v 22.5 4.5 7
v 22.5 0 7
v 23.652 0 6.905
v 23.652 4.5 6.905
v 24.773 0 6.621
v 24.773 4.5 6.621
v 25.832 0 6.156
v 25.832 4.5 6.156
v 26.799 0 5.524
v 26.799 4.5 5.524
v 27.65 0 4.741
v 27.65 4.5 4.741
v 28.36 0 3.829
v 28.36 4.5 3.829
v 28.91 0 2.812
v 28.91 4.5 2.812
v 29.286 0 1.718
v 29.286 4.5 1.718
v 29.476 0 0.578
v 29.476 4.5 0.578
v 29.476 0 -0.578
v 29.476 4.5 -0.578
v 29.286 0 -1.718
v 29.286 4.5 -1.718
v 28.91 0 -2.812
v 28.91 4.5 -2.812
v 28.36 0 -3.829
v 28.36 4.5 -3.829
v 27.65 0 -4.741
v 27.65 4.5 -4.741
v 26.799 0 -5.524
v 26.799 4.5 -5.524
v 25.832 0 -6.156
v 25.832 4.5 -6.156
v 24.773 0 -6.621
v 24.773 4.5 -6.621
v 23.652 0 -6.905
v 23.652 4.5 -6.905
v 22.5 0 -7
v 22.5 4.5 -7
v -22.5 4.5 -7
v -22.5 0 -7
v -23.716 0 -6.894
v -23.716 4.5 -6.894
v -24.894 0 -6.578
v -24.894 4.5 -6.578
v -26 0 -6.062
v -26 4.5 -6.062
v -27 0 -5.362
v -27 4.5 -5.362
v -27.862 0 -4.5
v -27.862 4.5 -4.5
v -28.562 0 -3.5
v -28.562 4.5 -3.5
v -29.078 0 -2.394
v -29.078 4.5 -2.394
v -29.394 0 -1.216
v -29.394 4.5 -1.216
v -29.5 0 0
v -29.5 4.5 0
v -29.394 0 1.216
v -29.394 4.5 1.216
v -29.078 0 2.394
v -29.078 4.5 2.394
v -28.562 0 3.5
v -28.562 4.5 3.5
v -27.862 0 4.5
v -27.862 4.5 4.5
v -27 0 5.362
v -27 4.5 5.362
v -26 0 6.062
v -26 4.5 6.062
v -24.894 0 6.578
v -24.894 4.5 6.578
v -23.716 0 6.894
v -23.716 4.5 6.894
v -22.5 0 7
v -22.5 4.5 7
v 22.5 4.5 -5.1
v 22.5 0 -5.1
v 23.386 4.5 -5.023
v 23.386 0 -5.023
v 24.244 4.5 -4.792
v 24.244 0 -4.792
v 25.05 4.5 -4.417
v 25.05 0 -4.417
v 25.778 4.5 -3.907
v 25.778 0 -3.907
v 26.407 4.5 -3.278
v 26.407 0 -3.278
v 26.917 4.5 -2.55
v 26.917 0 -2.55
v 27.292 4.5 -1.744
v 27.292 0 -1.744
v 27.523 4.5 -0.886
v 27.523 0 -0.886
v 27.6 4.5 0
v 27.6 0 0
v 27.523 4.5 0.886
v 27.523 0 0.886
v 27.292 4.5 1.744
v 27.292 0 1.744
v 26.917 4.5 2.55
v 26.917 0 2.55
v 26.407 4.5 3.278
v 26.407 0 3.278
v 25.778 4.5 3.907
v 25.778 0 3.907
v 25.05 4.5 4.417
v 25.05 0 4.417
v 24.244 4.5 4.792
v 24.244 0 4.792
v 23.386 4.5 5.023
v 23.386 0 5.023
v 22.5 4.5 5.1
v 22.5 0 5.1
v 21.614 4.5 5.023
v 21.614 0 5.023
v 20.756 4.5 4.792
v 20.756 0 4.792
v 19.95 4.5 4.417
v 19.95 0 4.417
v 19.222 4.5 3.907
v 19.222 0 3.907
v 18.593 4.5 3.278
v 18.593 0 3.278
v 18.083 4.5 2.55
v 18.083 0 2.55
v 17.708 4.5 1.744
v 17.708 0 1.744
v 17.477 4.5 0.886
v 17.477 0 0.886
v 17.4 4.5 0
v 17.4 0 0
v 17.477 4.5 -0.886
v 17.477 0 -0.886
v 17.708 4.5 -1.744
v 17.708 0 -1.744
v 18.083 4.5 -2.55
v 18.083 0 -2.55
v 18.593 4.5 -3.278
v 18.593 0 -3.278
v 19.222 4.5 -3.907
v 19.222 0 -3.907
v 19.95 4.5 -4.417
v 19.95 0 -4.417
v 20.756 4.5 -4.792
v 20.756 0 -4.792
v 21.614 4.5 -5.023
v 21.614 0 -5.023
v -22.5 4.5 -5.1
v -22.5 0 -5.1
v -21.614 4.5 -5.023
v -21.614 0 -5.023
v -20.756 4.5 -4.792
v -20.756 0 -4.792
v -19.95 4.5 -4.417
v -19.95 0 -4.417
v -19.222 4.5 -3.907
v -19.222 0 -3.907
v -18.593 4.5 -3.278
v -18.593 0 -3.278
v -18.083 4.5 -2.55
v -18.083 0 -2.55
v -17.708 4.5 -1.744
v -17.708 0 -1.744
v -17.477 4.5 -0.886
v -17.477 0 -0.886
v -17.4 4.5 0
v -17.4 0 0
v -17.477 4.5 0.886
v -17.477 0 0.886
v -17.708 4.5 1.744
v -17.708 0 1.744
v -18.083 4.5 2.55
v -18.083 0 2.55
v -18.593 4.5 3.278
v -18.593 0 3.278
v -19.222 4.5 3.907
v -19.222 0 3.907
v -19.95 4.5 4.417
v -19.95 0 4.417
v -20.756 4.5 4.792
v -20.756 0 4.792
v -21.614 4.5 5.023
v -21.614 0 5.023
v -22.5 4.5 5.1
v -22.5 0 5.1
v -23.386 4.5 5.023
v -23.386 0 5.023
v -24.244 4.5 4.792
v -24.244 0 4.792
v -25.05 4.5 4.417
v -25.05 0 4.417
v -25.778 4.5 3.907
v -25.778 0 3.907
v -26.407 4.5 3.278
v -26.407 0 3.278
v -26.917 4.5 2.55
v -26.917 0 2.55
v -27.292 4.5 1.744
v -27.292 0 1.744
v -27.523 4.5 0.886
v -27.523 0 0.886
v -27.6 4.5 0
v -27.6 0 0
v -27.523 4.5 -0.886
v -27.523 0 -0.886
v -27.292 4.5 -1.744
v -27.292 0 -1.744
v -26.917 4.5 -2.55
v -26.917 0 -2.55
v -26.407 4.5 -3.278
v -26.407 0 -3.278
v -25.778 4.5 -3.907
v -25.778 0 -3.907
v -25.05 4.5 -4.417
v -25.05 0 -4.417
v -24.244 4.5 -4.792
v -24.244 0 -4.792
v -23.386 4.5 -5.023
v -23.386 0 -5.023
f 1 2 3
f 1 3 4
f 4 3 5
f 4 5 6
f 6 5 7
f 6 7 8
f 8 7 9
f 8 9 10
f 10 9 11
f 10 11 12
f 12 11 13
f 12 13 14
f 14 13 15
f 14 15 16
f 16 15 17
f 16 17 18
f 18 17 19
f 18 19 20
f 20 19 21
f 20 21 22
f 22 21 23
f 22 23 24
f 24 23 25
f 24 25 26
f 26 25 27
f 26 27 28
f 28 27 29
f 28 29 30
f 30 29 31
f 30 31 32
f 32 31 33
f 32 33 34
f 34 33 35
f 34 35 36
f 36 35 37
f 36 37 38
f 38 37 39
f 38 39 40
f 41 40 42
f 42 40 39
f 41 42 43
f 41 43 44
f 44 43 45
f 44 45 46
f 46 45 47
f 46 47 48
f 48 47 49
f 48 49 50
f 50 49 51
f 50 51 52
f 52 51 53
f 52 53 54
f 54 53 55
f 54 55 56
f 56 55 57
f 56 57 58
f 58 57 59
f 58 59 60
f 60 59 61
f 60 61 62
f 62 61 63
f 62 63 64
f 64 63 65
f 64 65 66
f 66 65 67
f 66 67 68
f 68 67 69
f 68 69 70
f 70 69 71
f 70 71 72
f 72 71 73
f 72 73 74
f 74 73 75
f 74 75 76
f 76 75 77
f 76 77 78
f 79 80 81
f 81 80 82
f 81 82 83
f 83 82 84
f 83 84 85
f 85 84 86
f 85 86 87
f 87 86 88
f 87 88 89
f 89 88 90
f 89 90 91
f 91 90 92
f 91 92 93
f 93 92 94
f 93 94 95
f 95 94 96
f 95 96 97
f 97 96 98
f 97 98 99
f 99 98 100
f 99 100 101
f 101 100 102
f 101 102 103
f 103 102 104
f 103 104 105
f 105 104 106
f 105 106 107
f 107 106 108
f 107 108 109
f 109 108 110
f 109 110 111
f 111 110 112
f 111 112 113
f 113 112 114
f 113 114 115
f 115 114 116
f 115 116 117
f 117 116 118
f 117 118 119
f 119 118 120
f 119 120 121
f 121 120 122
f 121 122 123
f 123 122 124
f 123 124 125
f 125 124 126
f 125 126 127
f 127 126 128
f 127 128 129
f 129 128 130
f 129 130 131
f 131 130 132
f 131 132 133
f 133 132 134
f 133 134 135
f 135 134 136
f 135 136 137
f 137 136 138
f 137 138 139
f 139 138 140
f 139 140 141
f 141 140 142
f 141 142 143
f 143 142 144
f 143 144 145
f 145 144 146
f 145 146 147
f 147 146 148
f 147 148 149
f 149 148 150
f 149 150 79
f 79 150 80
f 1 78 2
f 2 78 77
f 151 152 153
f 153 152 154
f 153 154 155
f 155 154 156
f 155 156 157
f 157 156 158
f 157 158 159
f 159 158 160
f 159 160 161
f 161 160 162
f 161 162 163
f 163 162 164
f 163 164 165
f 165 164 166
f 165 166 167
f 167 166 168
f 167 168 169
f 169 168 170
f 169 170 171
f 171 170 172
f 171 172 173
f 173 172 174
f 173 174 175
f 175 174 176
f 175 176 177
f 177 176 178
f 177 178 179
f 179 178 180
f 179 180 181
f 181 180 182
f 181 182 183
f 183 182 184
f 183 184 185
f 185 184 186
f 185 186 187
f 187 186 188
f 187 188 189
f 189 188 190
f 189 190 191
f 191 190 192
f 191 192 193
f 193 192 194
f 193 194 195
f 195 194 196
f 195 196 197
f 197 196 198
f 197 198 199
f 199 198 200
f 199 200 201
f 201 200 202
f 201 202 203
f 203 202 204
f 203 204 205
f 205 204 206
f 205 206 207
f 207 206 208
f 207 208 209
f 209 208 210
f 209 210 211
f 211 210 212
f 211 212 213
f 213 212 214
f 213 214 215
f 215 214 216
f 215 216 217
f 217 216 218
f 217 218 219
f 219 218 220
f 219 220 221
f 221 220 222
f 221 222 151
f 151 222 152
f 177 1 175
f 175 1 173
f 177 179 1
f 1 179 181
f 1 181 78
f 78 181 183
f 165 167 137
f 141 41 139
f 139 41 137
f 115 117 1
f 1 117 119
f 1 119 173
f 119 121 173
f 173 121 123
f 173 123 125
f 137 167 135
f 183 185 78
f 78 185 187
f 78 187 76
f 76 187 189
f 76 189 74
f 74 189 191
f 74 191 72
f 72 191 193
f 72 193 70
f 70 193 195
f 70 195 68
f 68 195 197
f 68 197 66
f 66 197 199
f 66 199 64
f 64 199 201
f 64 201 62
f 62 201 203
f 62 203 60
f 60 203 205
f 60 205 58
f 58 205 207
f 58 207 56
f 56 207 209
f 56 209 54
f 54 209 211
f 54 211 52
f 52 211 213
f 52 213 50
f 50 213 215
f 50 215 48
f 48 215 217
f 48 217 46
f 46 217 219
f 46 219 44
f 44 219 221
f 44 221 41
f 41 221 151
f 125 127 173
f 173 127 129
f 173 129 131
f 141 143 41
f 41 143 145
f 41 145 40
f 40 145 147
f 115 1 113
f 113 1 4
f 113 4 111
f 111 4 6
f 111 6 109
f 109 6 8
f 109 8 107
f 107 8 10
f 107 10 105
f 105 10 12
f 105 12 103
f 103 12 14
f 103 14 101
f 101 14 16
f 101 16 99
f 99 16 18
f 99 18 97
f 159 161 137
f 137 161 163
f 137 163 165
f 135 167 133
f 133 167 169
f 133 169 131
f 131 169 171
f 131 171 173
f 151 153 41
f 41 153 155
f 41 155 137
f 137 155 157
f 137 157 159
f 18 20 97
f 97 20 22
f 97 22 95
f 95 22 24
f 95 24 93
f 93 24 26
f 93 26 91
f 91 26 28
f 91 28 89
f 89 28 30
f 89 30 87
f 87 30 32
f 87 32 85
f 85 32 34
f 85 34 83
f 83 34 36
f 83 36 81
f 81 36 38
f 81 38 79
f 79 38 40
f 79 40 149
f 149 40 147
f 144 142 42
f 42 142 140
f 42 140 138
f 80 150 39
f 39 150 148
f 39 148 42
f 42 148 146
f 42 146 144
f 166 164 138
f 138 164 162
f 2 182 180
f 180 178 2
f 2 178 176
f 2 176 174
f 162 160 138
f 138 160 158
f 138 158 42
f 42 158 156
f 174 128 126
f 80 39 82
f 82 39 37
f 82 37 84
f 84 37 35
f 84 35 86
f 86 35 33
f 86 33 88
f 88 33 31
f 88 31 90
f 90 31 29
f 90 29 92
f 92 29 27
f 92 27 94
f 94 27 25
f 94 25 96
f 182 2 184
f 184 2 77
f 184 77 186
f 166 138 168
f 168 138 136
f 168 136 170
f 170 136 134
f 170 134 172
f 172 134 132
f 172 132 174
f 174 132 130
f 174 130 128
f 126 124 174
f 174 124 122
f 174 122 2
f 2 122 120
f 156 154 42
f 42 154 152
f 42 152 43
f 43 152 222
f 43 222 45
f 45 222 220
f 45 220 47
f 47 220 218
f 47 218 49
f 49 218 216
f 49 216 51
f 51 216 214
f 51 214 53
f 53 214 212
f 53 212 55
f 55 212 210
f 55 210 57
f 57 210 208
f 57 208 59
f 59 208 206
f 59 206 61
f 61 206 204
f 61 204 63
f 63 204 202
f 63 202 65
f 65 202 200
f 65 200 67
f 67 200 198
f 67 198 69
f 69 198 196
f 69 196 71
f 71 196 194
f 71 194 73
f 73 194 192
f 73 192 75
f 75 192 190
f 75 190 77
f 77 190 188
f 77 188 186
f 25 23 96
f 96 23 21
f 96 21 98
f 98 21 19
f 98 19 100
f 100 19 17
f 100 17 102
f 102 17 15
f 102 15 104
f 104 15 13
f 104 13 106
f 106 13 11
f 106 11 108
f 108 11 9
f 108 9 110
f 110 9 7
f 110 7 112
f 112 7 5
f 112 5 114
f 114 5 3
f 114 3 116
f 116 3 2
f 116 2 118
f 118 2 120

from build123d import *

# Parameters (mm, degrees)
BOSS_EXTRUDE1_DEPTH = 4.5


with BuildPart() as part:
    # Sketch1 → Boss-Extrude1 (new body)
    with BuildSketch(Plane(origin=(0, 0, 0), x_dir=(1, 0, 0), z_dir=(0, 1, 0))):
        with BuildLine():
            ThreePointArc((-22.5, 7), (-29.5, 0), (-22.5, -7))
            Line((-22.5, -7), (-22.5, -5.1))
            ThreePointArc((-22.5, -5.1), (-27.6, 0), (-22.5, 5.1))
            Line((-22.5, 5.1), (-22.5, 7))
        make_face()
        with BuildLine():
            Line((-22.5, -5.1), (-22.5, -7))
            ThreePointArc((-22.5, -7), (-17.550252532, -4.949747468), (-15.5, 0))
            ThreePointArc((-15.5, 0), (-17.550252532, 4.949747468), (-22.5, 7))
            Line((-22.5, 7), (-22.5, 5.1))
            ThreePointArc((-22.5, 5.1), (-18.893755416, 3.606244584), (-17.4, 0))
            ThreePointArc((-17.4, 0), (-18.893755416, -3.606244584), (-22.5, -5.1))
        make_face()
        with BuildLine():
            ThreePointArc((-22.5, 7), (-29.5, 0), (-22.5, -7))
            Line((-22.5, -7), (-22.5, -5.1))
            ThreePointArc((-22.5, -5.1), (-27.6, 0), (-22.5, 5.1))
            Line((-22.5, 5.1), (-22.5, 7))
        make_face()
        with BuildLine():
            Line((-22.5, -5.1), (-22.5, -7))
            ThreePointArc((-22.5, -7), (-17.550252532, -4.949747468), (-15.5, 0))
            ThreePointArc((-15.5, 0), (-17.550252532, 4.949747468), (-22.5, 7))
            Line((-22.5, 7), (-22.5, 5.1))
            ThreePointArc((-22.5, 5.1), (-18.893755416, 3.606244584), (-17.4, 0))
            ThreePointArc((-17.4, 0), (-18.893755416, -3.606244584), (-22.5, -5.1))
        make_face()
        with BuildLine():
            ThreePointArc((-15.5, 0), (-17.550252532, -4.949747468), (-22.5, -7))
            Line((-22.5, -7), (22.5, -7))
            ThreePointArc((22.5, -7), (15.5, 0), (22.5, 7))
            Line((22.5, 7), (-22.5, 7))
            ThreePointArc((-22.5, 7), (-17.550252532, 4.949747468), (-15.5, 0))
        make_face()
        with BuildLine():
            ThreePointArc((22.5, 7), (15.5, 0), (22.5, -7))
            Line((22.5, -7), (22.5, -5.1))
            ThreePointArc((22.5, -5.1), (17.4, 0), (22.5, 5.1))
            Line((22.5, 5.1), (22.5, 7))
        make_face()
        with BuildLine():
            Line((22.5, -5.1), (22.5, -7))
            ThreePointArc((22.5, -7), (27.449747468, -4.949747468), (29.5, 0))
            ThreePointArc((29.5, 0), (27.449747468, 4.949747468), (22.5, 7))
            Line((22.5, 7), (22.5, 5.1))
            ThreePointArc((22.5, 5.1), (26.106244584, 3.606244584), (27.6, 0))
            ThreePointArc((27.6, 0), (26.106244584, -3.606244584), (22.5, -5.1))
        make_face()
        with BuildLine():
            ThreePointArc((22.5, 7), (15.5, 0), (22.5, -7))
            Line((22.5, -7), (22.5, -5.1))
            ThreePointArc((22.5, -5.1), (17.4, 0), (22.5, 5.1))
            Line((22.5, 5.1), (22.5, 7))
        make_face()
        with BuildLine():
            Line((22.5, -5.1), (22.5, -7))
            ThreePointArc((22.5, -7), (27.449747468, -4.949747468), (29.5, 0))
            ThreePointArc((29.5, 0), (27.449747468, 4.949747468), (22.5, 7))
            Line((22.5, 7), (22.5, 5.1))
            ThreePointArc((22.5, 5.1), (26.106244584, 3.606244584), (27.6, 0))
            ThreePointArc((27.6, 0), (26.106244584, -3.606244584), (22.5, -5.1))
        make_face()
    extrude(amount=BOSS_EXTRUDE1_DEPTH)


solid = part.part
